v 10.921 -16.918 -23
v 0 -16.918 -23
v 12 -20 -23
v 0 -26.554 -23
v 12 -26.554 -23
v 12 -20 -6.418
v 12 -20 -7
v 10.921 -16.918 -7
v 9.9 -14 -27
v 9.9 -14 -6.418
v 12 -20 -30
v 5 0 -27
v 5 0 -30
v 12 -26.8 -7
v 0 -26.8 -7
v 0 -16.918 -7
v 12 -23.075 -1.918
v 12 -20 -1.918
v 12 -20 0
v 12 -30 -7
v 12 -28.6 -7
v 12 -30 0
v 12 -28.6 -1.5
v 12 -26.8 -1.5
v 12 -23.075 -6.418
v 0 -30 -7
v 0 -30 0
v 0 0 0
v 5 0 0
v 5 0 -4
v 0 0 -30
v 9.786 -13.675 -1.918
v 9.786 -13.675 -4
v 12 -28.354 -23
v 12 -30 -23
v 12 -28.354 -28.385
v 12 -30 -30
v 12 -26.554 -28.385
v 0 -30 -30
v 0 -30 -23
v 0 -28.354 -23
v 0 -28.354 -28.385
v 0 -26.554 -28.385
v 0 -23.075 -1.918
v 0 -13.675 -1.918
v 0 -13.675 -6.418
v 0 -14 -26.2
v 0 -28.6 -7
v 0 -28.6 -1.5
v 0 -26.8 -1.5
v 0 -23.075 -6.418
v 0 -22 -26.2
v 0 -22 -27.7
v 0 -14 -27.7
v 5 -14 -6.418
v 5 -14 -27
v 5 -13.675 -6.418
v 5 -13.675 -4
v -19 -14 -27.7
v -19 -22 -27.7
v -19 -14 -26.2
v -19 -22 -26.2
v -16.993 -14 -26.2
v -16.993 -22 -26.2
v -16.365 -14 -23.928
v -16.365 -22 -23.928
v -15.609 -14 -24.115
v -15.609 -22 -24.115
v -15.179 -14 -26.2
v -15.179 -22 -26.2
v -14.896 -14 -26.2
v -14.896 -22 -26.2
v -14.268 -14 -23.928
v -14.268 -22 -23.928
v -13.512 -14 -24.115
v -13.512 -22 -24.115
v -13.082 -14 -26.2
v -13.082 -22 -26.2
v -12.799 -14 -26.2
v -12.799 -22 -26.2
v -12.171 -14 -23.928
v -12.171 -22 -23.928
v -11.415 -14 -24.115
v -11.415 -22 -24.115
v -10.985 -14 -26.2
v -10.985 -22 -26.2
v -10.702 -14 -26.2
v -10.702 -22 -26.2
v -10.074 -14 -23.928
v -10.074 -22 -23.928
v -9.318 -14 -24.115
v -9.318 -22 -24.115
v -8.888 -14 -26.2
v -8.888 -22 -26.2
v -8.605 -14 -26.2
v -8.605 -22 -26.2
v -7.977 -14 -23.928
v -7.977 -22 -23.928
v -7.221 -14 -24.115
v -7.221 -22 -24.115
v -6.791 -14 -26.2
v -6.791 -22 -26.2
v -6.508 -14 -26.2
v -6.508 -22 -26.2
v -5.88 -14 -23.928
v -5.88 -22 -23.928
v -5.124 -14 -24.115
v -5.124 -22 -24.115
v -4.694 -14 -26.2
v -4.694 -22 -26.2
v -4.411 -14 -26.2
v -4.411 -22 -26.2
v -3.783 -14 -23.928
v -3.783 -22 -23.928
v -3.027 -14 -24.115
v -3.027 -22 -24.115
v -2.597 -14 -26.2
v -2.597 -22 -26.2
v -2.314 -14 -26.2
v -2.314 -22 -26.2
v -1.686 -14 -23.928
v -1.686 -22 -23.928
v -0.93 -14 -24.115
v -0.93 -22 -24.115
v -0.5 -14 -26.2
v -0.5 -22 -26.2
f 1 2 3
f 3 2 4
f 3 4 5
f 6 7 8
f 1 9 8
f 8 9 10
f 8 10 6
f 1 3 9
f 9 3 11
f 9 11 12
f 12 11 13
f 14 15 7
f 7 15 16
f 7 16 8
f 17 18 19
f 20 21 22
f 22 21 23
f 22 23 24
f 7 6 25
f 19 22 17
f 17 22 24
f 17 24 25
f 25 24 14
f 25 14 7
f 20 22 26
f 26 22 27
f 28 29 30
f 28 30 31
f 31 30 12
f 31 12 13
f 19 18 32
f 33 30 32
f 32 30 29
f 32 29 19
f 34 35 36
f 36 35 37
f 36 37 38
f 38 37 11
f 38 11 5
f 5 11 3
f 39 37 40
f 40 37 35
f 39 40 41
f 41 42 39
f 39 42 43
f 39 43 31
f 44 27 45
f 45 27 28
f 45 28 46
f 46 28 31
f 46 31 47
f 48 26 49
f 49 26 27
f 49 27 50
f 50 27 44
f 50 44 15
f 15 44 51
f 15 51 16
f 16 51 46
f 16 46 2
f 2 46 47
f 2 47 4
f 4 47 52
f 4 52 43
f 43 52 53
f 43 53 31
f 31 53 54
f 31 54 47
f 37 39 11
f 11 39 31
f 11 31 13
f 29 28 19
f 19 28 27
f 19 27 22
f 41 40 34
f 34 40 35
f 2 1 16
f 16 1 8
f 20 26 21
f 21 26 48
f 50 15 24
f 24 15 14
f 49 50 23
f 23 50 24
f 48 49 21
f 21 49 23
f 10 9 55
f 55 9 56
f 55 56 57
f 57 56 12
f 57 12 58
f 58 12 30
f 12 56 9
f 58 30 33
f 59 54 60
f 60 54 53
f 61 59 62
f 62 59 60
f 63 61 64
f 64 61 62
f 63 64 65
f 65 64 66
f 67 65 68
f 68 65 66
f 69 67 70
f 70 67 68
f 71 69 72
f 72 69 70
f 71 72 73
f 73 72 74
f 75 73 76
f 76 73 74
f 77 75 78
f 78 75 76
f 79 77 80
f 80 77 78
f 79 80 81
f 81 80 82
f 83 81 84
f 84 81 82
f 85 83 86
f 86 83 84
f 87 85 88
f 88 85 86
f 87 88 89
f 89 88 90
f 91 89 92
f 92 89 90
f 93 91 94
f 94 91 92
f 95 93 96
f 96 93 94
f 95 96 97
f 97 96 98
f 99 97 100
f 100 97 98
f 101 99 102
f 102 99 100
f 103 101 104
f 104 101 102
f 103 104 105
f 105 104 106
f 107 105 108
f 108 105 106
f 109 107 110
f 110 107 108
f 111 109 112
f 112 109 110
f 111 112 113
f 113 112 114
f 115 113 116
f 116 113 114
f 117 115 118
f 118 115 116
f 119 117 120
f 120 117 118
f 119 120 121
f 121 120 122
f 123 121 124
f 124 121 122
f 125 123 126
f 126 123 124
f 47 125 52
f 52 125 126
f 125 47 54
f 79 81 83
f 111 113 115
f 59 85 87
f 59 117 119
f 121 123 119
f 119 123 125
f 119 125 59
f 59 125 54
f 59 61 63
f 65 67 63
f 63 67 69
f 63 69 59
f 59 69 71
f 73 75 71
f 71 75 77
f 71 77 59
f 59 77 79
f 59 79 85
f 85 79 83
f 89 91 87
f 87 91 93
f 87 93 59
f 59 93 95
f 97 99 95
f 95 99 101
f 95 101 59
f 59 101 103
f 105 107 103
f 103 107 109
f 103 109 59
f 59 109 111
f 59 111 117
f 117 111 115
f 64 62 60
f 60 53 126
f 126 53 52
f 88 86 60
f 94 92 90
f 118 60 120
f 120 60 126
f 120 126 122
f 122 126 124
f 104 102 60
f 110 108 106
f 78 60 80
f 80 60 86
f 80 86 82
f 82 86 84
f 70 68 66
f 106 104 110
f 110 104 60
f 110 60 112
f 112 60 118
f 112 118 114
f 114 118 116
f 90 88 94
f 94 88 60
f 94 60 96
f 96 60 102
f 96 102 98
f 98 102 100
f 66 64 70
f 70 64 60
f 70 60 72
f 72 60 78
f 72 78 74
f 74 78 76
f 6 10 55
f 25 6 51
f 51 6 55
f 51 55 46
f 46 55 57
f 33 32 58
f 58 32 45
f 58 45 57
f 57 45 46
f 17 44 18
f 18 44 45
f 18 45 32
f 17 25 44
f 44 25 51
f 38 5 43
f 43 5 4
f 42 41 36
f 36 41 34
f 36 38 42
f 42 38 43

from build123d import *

# Parameters (mm, degrees)
BOSS_EXTRUDE1_DEPTH = 30
SKETCH4_W           = 16
SKETCH4_H           = 14
CUT_EXTRUDE2_DEPTH  = 25
SKETCH5_W           = 5.5
SKETCH5_H           = 1.8
CUT_EXTRUDE3_DEPTH  = 15
CUT_EXTRUDE4_DEPTH  = 11.5
BOSS_EXTRUDE2_DEPTH = 8
SKETCH8_W           = 4.5
SKETCH8_H           = 9.4
CUT_EXTRUDE5_DEPTH  = 47.486557197
SKETCH9_W           = 5.5
SKETCH9_H           = 1.8
CUT_EXTRUDE6_DEPTH  = 47.486557197


with BuildPart() as part:
    # Sketch1 → Boss-Extrude1 (new body)
    with BuildSketch(Plane.XY):
        Polygon((0, 0), (0, -30), (12, -30), (12, -20), (5, 0), align=None)
    extrude(amount=-BOSS_EXTRUDE1_DEPTH)

    # Sketch4 → Cut-Extrude2 (cut)
    with BuildSketch(Plane.ZY):
        with Locations((-15, -23.917856259)):
            Rectangle(SKETCH4_W, SKETCH4_H)
    extrude(amount=-CUT_EXTRUDE2_DEPTH, mode=Mode.SUBTRACT)

    # Sketch5 → Cut-Extrude3 (cut)
    with BuildSketch(Plane.ZY):
        with Locations((-4.25, -27.7)):
            Rectangle(SKETCH5_W, SKETCH5_H)
    extrude(amount=-CUT_EXTRUDE3_DEPTH, mode=Mode.SUBTRACT)

    # Sketch6 → Cut-Extrude4 (cut, symmetric)
    with BuildSketch(Plane.XY.offset(-15.5)):
        Polygon((5, 0), (5, -14), (9.9, -14), align=None)
    extrude(amount=CUT_EXTRUDE4_DEPTH, both=True, mode=Mode.SUBTRACT)

    # Sketch7 → Boss-Extrude2 (add)
    with BuildSketch(Plane(origin=(0, -22, 0), x_dir=(1, 0, 0), z_dir=(0, 1, 0))):
        with BuildLine():
            Line((0, 27.7), (-19, 27.7))
            Line((-19, 27.7), (-19, 26.2))
            Line((-19, 26.2), (-16.993455994, 26.2))
            ThreePointArc((-16.993455994, 26.2), (-16.6644108, 25.067952934), (-16.365476207, 23.927584833))
            Line((-16.365476207, 23.927584833), (-15.609396851, 24.115112691))
            Line((-15.609396851, 24.115112691), (-15.179008189, 26.2))
            Line((-15.179008189, 26.2), (-14.896454824, 26.2))
            ThreePointArc((-14.896454824, 26.2), (-14.56740963, 25.067952934), (-14.268475038, 23.927584833))
            Line((-14.268475038, 23.927584833), (-13.512395681, 24.115112691))
            Line((-13.512395681, 24.115112691), (-13.082007019, 26.2))
            Line((-13.082007019, 26.2), (-12.799453654, 26.2))
            ThreePointArc((-12.799453654, 26.2), (-12.470408461, 25.067952934), (-12.171473868, 23.927584833))
            Line((-12.171473868, 23.927584833), (-11.415394512, 24.115112691))
            Line((-11.415394512, 24.115112691), (-10.985005849, 26.2))
            Line((-10.985005849, 26.2), (-10.702452484, 26.2))
            ThreePointArc((-10.702452484, 26.2), (-10.373407291, 25.067952934), (-10.074472698, 23.927584833))
            Line((-10.074472698, 23.927584833), (-9.318393342, 24.115112691))
            Line((-9.318393342, 24.115112691), (-8.888004679, 26.2))
            Line((-8.888004679, 26.2), (-8.605451315, 26.2))
            ThreePointArc((-8.605451315, 26.2), (-8.276406121, 25.067952934), (-7.977471528, 23.927584833))
            Line((-7.977471528, 23.927584833), (-7.221392172, 24.115112691))
            Line((-7.221392172, 24.115112691), (-6.791003509, 26.2))
            Line((-6.791003509, 26.2), (-6.508450145, 26.2))
            ThreePointArc((-6.508450145, 26.2), (-6.179404951, 25.067952934), (-5.880470358, 23.927584833))
            Line((-5.880470358, 23.927584833), (-5.124391002, 24.115112691))
            Line((-5.124391002, 24.115112691), (-4.69400234, 26.2))
            Line((-4.69400234, 26.2), (-4.411448975, 26.2))
            ThreePointArc((-4.411448975, 26.2), (-4.082403781, 25.067952934), (-3.783469189, 23.927584833))
            Line((-3.783469189, 23.927584833), (-3.027389832, 24.115112691))
            Line((-3.027389832, 24.115112691), (-2.59700117, 26.2))
            Line((-2.59700117, 26.2), (-2.314447805, 26.2))
            ThreePointArc((-2.314447805, 26.2), (-1.985402612, 25.067952934), (-1.686468019, 23.927584833))
            Line((-1.686468019, 23.927584833), (-0.930388662, 24.115112691))
            Line((-0.930388662, 24.115112691), (-0.5, 26.2))
            Line((-0.5, 26.2), (0, 26.2))
            Line((0, 26.2), (0, 27.7))
        make_face()
    extrude(amount=BOSS_EXTRUDE2_DEPTH)

    # Sketch8 → Cut-Extrude5 (cut, through all)
    with BuildSketch(Plane.ZY):
        with Locations((-4.168450475, -18.374722701)):
            Rectangle(SKETCH8_W, SKETCH8_H)
    extrude(amount=-CUT_EXTRUDE5_DEPTH, mode=Mode.SUBTRACT)

    # Sketch9 → Cut-Extrude6 (cut, through all)
    with BuildSketch(Plane.ZY):
        with Locations((-25.635290025, -27.453702253)):
            Rectangle(SKETCH9_W, SKETCH9_H)
    extrude(amount=-CUT_EXTRUDE6_DEPTH, mode=Mode.SUBTRACT)


solid = part.part
